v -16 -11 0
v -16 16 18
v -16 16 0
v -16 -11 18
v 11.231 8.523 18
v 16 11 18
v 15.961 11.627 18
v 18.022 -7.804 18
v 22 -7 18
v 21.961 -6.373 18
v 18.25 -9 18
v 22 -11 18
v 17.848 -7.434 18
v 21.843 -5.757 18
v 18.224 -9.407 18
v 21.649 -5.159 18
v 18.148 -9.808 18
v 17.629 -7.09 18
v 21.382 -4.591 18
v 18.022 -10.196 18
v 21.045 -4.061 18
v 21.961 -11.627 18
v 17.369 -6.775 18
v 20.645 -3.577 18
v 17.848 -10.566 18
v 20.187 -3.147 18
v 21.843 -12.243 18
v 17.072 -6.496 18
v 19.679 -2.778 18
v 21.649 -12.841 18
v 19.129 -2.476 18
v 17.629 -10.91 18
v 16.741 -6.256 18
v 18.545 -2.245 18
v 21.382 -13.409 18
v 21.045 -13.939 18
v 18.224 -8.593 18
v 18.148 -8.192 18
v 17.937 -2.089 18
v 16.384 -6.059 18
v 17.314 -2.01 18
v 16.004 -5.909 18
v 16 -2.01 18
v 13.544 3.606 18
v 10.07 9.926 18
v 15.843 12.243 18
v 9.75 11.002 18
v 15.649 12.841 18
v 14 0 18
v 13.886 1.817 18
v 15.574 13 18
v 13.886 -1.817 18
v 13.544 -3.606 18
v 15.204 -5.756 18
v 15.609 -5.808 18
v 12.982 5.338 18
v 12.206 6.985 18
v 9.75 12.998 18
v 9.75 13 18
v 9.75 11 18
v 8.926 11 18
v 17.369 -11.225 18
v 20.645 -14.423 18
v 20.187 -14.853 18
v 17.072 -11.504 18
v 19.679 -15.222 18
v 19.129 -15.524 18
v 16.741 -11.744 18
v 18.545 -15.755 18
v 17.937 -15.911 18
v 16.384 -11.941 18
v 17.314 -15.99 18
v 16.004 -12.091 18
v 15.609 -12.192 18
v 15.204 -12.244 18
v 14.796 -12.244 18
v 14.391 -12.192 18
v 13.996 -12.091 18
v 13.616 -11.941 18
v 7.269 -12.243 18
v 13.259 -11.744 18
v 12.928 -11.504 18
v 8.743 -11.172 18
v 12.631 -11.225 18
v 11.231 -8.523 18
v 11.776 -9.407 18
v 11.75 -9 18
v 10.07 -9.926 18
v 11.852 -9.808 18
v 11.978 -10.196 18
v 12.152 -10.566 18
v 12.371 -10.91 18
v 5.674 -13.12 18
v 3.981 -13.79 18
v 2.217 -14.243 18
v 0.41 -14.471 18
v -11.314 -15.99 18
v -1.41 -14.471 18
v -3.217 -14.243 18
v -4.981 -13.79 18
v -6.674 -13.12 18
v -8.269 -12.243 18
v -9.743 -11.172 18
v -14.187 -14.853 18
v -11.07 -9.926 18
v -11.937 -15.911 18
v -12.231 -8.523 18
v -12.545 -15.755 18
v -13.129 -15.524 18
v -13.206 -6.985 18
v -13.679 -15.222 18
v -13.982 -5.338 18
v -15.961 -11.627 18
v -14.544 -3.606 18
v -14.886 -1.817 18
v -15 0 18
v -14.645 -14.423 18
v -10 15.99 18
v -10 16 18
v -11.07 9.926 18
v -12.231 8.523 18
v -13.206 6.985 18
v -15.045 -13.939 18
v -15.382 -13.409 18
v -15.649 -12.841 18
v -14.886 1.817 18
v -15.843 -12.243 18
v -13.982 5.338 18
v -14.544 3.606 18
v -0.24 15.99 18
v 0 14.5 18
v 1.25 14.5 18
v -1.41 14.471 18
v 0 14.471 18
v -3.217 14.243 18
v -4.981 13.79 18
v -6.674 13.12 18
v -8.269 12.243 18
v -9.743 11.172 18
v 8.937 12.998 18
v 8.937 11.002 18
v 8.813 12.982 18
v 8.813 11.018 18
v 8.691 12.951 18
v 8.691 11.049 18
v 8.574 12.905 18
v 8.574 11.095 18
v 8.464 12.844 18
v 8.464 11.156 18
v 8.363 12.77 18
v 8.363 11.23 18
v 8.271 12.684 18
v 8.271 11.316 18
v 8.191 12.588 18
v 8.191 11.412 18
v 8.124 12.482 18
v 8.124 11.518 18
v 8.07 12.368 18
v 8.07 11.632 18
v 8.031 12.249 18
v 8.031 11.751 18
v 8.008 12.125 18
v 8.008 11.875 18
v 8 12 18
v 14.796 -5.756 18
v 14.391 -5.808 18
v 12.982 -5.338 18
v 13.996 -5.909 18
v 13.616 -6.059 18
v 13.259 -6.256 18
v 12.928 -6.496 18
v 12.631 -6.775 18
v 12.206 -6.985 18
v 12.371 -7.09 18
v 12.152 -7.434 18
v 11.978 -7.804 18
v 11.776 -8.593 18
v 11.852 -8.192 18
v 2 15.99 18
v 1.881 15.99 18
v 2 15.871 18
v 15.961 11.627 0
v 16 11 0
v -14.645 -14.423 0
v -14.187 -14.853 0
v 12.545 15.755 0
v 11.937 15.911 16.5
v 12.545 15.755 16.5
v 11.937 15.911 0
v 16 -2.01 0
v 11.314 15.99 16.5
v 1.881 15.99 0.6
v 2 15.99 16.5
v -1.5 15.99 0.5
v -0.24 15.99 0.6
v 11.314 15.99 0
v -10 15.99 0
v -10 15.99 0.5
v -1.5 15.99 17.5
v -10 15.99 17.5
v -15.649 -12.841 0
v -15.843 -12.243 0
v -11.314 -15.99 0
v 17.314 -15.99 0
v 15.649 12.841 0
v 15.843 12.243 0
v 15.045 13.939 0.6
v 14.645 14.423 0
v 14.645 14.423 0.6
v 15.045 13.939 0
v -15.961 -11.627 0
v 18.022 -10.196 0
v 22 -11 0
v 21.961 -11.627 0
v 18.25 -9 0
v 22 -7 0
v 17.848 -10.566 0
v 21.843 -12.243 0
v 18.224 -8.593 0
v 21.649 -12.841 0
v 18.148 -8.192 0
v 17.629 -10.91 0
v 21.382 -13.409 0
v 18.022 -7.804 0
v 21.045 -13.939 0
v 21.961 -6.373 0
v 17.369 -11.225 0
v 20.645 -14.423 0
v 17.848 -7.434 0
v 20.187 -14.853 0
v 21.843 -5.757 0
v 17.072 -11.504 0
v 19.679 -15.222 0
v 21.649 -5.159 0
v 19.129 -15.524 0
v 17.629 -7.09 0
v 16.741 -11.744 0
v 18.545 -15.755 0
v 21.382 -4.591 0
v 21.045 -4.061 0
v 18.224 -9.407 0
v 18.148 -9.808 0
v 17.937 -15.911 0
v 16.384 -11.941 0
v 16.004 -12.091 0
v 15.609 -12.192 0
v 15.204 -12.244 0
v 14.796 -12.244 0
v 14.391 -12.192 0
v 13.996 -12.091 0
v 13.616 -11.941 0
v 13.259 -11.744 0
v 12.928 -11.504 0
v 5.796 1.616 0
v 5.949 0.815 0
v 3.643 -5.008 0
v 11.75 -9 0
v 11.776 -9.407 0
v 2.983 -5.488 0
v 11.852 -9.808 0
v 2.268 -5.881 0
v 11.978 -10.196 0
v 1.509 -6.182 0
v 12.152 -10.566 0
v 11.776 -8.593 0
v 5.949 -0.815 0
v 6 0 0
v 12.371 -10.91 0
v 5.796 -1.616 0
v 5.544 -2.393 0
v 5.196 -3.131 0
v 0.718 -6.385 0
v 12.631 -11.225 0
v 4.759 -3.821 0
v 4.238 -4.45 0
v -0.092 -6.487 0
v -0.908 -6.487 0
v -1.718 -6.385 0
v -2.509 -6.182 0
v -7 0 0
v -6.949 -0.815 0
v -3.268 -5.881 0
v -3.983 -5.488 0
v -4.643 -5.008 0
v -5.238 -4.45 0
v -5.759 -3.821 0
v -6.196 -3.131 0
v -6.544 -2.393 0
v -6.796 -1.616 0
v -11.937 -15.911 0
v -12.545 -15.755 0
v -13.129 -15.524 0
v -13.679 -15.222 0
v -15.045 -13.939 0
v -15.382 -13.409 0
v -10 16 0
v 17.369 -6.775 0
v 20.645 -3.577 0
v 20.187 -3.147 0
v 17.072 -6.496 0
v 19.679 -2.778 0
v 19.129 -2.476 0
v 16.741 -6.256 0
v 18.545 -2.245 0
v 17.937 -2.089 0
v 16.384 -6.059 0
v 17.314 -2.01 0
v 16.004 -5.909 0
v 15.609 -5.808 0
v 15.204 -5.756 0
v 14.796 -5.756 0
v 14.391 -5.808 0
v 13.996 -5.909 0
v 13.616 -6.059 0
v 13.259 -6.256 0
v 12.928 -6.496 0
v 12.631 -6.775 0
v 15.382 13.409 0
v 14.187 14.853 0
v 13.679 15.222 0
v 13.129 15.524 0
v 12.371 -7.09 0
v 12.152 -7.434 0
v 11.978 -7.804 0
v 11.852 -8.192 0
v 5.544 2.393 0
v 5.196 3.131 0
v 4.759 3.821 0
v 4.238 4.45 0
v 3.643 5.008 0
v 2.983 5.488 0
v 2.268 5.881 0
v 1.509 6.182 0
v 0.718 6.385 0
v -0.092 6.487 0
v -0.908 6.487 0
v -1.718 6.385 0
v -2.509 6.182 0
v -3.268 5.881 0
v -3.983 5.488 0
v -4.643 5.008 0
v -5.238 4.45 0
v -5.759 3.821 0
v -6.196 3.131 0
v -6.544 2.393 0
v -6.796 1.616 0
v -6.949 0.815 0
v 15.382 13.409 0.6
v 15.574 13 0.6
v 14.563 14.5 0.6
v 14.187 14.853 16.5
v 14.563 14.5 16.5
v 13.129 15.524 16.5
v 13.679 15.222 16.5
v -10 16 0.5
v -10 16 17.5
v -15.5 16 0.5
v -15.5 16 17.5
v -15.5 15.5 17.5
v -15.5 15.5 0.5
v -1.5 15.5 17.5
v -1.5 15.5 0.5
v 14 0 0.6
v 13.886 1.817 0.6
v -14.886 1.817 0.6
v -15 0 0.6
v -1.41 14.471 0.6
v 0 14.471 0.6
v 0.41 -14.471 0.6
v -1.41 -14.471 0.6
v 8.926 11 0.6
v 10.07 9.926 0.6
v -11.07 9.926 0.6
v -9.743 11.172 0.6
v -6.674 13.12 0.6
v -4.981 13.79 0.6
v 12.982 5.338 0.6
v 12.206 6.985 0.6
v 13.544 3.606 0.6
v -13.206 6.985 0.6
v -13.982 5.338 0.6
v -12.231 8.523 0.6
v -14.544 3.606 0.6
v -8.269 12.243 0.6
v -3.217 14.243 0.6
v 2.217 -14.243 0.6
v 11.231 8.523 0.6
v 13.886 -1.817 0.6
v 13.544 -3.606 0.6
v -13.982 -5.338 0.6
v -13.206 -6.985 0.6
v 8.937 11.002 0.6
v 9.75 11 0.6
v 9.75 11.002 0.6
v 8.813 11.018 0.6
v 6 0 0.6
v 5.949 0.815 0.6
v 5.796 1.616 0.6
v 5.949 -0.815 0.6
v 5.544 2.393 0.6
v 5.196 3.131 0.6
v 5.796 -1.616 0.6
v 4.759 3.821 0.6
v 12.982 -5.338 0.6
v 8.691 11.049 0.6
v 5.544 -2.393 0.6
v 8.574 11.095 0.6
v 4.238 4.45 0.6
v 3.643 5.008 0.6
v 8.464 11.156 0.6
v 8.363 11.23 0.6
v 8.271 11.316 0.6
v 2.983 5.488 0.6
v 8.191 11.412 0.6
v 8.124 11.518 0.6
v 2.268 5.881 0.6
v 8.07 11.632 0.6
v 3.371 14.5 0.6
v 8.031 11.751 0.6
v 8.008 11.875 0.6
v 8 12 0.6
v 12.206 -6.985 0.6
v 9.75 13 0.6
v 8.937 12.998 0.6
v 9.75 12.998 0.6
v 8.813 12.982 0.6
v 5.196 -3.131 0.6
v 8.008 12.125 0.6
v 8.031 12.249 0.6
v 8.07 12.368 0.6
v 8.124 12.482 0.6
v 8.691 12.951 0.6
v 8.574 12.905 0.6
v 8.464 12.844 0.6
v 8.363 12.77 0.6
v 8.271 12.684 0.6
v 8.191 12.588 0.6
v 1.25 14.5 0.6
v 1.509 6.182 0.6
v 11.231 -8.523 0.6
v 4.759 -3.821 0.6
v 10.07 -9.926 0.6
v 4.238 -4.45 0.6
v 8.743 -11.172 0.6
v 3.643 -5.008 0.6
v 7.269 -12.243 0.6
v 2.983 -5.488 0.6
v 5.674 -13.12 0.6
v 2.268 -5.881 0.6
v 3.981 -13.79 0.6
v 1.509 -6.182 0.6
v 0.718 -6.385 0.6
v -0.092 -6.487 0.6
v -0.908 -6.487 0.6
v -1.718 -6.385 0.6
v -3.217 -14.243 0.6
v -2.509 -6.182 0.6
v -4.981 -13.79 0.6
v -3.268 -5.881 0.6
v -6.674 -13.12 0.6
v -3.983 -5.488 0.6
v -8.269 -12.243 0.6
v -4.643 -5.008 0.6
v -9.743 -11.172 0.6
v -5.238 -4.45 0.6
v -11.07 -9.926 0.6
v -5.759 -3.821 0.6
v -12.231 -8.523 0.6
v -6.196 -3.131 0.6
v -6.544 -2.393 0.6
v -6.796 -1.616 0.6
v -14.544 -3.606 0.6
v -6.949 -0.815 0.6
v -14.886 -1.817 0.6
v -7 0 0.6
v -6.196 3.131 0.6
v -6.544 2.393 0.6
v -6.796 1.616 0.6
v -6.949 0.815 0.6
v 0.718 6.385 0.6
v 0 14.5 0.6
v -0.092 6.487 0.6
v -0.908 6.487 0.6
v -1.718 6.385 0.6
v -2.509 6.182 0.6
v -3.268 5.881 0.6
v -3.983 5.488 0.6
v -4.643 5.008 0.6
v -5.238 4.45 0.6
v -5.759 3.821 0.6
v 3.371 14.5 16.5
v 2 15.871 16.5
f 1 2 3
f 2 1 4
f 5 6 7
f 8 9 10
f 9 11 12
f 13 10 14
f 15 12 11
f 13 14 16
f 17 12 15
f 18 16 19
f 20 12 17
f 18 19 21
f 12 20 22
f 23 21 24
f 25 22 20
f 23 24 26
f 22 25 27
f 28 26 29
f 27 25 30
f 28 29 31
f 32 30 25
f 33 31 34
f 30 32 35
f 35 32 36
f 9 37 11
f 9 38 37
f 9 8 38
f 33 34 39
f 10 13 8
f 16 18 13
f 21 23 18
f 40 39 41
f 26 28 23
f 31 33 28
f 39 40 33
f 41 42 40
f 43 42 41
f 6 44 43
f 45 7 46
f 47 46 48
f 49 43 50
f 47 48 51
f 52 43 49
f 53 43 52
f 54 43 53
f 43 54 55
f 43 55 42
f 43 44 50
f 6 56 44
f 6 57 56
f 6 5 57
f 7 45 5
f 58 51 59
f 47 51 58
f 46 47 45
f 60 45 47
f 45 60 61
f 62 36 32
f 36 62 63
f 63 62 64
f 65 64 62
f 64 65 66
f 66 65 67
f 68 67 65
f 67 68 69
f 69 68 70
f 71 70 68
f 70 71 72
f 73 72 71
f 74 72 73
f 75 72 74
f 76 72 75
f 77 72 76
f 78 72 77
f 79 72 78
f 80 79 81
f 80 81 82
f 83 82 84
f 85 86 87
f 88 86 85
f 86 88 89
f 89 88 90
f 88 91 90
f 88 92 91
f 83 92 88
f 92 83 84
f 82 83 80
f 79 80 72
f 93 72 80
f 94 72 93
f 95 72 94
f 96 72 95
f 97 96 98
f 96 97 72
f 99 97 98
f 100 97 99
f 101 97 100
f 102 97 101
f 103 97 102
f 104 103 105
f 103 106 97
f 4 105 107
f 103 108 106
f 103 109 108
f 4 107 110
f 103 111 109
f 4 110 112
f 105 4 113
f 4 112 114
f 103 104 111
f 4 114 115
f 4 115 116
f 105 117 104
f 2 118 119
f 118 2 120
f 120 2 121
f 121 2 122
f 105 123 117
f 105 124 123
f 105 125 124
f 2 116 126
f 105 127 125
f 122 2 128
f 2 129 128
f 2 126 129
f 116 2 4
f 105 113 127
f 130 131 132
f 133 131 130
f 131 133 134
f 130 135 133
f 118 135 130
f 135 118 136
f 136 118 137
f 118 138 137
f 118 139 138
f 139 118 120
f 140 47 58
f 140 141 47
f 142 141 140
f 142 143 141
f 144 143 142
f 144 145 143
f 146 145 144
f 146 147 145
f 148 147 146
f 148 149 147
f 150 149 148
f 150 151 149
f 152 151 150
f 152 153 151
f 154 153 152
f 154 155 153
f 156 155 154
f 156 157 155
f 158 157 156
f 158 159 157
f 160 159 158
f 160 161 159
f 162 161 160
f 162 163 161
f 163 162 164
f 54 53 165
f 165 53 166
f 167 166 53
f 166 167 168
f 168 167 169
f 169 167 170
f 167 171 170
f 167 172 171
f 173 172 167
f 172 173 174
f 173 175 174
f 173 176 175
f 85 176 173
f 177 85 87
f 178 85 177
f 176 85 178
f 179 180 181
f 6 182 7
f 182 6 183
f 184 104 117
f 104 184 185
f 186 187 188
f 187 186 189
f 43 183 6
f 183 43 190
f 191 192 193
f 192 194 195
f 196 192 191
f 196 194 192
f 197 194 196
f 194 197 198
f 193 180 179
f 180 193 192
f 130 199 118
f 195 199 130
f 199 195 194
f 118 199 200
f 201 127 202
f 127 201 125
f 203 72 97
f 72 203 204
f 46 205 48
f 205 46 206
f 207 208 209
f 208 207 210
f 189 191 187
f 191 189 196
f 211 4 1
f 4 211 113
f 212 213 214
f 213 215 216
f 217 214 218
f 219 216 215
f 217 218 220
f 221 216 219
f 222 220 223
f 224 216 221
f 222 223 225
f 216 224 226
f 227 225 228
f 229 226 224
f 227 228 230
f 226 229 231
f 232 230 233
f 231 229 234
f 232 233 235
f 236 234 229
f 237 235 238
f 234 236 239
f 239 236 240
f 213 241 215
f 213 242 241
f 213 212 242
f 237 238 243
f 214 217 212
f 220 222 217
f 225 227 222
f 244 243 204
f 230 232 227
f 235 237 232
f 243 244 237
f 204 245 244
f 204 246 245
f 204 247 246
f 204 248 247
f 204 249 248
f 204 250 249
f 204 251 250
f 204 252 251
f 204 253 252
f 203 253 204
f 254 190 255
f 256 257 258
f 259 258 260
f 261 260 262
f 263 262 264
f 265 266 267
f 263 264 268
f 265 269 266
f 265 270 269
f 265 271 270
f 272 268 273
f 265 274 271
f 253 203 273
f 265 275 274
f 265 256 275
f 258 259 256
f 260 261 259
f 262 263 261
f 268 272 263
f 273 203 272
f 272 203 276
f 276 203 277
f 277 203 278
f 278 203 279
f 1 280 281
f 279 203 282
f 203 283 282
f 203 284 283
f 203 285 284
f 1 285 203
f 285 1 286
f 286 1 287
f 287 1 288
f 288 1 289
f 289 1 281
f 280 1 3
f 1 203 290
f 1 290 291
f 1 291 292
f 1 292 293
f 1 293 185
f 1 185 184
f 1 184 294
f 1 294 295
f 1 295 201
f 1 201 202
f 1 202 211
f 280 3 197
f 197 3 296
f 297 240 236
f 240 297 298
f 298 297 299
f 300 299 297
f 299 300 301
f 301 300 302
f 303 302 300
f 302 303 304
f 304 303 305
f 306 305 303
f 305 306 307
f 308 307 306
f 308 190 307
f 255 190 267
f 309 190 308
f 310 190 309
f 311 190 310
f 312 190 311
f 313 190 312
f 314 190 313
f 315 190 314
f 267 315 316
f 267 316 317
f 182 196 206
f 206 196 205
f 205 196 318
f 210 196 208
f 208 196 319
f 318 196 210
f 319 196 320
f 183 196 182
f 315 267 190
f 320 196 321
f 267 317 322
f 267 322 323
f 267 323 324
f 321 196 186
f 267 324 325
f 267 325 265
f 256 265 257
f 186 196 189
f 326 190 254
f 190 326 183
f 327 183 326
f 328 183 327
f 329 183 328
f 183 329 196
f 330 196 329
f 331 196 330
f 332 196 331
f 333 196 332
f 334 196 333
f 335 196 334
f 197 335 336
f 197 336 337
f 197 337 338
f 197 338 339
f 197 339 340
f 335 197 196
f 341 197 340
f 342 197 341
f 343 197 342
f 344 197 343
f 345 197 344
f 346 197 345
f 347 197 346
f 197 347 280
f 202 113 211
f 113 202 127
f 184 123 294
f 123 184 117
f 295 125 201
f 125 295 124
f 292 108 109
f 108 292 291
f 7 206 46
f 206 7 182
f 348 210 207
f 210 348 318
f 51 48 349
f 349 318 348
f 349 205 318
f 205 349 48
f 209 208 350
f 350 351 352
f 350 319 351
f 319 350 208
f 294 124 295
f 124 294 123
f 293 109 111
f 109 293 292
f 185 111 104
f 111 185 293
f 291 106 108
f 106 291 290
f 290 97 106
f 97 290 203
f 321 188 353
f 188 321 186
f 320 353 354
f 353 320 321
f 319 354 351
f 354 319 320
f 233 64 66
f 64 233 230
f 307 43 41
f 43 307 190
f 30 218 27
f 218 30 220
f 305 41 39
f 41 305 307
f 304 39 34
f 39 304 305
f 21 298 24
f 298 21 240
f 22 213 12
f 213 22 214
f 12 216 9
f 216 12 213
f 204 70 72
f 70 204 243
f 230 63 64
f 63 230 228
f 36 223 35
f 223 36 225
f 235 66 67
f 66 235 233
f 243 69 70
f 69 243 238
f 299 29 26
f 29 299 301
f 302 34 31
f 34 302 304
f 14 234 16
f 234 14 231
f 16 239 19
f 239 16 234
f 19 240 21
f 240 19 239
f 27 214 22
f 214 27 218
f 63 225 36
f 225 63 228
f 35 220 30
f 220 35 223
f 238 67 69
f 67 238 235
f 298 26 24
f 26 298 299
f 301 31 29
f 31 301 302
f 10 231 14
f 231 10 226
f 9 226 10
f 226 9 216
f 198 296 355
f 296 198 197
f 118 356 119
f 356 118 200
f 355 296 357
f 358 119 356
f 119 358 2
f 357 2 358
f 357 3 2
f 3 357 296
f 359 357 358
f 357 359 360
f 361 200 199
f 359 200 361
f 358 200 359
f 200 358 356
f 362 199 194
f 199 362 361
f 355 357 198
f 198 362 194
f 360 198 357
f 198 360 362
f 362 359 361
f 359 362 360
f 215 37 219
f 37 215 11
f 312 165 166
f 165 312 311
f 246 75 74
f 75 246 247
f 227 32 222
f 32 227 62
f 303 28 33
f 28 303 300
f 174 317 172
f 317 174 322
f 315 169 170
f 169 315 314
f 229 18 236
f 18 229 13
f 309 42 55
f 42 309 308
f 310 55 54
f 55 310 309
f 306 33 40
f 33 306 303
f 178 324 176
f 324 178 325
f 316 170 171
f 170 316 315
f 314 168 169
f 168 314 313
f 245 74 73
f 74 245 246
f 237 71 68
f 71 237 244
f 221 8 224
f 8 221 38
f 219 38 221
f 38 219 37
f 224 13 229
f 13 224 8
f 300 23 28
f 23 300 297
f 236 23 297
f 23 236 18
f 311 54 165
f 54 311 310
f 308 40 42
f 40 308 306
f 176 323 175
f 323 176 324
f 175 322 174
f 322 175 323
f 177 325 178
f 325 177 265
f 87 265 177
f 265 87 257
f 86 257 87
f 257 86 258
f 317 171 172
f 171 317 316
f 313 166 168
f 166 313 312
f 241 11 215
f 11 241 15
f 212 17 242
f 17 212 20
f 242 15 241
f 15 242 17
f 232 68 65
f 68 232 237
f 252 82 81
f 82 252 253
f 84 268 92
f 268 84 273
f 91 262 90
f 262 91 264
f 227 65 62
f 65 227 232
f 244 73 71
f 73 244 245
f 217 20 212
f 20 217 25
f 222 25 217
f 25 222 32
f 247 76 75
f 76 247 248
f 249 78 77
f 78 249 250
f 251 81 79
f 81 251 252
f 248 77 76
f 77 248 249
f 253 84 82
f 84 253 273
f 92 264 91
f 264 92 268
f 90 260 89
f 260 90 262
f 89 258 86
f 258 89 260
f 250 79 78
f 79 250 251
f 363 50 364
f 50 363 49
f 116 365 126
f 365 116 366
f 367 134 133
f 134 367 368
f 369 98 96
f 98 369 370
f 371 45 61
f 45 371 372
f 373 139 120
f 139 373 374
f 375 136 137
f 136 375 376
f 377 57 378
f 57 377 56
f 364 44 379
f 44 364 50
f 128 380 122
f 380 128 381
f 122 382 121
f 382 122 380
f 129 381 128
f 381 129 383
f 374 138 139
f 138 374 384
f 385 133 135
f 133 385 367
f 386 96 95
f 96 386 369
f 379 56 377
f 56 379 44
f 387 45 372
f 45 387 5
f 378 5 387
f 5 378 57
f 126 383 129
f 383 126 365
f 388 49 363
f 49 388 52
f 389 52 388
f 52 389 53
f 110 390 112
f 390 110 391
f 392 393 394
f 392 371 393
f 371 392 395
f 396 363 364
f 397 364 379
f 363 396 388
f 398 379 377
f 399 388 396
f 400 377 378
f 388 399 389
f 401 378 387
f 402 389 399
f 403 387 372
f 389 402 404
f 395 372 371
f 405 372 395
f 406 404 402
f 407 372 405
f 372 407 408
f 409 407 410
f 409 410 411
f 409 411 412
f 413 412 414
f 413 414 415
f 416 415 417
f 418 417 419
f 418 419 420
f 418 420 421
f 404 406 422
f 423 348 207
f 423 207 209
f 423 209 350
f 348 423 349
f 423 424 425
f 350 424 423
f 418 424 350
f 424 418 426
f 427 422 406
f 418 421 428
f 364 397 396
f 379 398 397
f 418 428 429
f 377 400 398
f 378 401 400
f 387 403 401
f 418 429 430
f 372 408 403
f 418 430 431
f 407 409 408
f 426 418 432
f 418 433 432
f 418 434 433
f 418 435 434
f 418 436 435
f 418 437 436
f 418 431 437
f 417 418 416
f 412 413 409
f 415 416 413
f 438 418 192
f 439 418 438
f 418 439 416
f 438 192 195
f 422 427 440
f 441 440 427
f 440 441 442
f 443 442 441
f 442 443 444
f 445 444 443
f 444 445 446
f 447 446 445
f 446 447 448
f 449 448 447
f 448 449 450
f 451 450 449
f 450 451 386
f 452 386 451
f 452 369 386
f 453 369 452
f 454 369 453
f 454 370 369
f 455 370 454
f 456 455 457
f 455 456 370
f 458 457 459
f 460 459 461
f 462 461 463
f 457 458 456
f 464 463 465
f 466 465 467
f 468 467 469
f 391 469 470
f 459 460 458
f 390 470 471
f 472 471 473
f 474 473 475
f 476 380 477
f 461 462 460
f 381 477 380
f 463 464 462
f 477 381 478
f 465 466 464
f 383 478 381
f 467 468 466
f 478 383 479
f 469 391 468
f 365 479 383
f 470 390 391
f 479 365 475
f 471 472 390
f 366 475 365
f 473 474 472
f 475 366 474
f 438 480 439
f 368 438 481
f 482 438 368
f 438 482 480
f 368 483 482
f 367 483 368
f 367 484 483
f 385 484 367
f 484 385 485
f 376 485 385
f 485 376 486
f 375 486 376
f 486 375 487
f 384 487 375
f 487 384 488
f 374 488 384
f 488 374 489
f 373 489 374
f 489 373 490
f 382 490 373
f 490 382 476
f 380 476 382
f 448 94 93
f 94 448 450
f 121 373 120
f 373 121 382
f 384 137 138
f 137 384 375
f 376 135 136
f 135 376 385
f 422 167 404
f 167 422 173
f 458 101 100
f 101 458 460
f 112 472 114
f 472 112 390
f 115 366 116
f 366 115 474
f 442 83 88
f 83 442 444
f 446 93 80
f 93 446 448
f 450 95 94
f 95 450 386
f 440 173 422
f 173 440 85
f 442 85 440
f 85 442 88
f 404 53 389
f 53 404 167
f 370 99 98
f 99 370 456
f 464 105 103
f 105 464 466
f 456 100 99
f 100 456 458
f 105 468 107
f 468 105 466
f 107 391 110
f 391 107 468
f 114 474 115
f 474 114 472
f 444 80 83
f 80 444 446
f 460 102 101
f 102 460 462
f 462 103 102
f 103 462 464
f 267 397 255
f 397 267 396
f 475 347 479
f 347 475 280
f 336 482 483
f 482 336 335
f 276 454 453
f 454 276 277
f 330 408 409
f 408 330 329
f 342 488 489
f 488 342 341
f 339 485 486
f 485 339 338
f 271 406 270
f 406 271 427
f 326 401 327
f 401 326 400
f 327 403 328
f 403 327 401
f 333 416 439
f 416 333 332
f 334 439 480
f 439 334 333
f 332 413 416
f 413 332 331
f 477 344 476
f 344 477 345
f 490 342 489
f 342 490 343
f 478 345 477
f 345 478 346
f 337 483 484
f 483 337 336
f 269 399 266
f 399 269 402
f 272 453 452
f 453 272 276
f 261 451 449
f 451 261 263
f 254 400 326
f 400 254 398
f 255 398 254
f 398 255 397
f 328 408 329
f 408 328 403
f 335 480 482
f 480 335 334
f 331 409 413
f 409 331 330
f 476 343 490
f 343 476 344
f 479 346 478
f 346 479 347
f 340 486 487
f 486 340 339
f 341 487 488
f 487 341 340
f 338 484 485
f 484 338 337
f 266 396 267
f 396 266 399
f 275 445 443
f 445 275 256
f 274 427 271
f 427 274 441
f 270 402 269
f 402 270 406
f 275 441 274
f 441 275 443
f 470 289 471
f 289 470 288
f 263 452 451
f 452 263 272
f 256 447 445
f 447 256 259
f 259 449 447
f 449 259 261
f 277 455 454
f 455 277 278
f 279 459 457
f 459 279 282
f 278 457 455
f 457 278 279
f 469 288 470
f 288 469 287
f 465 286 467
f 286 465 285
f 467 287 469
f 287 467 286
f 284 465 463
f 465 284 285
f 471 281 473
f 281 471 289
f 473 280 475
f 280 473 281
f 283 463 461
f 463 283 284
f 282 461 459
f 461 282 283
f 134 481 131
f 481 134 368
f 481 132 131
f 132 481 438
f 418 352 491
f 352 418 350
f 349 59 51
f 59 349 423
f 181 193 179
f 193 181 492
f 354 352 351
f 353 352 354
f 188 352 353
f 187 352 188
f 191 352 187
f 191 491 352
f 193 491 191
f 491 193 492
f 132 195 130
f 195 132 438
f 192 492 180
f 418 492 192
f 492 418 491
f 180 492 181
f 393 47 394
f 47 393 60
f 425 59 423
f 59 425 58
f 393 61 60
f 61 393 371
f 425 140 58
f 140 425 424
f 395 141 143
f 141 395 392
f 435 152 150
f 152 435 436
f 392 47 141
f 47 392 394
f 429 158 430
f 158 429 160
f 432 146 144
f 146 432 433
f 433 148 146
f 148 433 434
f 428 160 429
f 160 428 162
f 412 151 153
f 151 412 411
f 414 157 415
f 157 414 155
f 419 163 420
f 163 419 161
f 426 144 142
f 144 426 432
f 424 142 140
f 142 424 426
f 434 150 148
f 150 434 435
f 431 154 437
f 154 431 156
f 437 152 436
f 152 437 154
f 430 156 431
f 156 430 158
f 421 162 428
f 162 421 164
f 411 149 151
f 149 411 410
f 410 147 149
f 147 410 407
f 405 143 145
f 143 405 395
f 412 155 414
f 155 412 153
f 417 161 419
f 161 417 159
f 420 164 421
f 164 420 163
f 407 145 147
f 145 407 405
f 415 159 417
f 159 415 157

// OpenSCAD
$fn = 50;


union() {
	difference() {
		union() {
			translate(v = [0, 0, 0]) {
				rotate(a = [0, 0, 0]) {
					hull() {
						translate(v = [-11.0000000000, 11.0000000000, 0]) {
							rotate(a = [0, 0, 0]) {
								translate(v = [0, 0, 0]) {
									rotate(a = [0, 0, 0]) {
										cylinder(h = 18, r = 5);
									}
								}
							}
						}
						translate(v = [11.0000000000, 11.0000000000, 0]) {
							rotate(a = [0, 0, 0]) {
								translate(v = [0, 0, 0]) {
									rotate(a = [0, 0, 0]) {
										cylinder(h = 18, r = 5);
									}
								}
							}
						}
						translate(v = [-11.0000000000, -11.0000000000, 0]) {
							rotate(a = [0, 0, 0]) {
								translate(v = [0, 0, 0]) {
									rotate(a = [0, 0, 0]) {
										cylinder(h = 18, r = 5);
									}
								}
							}
						}
						translate(v = [11.0000000000, -11.0000000000, 0]) {
							rotate(a = [0, 0, 0]) {
								translate(v = [0, 0, 0]) {
									rotate(a = [0, 0, 0]) {
										cylinder(h = 18, r = 5);
									}
								}
							}
						}
					}
				}
			}
			translate(v = [7.5000000000, -9.0000000000, 0]) {
				rotate(a = [0, 0, 0]) {
					hull() {
						translate(v = [-9.5000000000, 2.0000000000, 0]) {
							rotate(a = [0, 0, 0]) {
								translate(v = [0, 0, 0]) {
									rotate(a = [0, 0, 0]) {
										cylinder(h = 18, r = 5);
									}
								}
							}
						}
						translate(v = [9.5000000000, 2.0000000000, 0]) {
							rotate(a = [0, 0, 0]) {
								translate(v = [0, 0, 0]) {
									rotate(a = [0, 0, 0]) {
										cylinder(h = 18, r = 5);
									}
								}
							}
						}
						translate(v = [-9.5000000000, -2.0000000000, 0]) {
							rotate(a = [0, 0, 0]) {
								translate(v = [0, 0, 0]) {
									rotate(a = [0, 0, 0]) {
										cylinder(h = 18, r = 5);
									}
								}
							}
						}
						translate(v = [9.5000000000, -2.0000000000, 0]) {
							rotate(a = [0, 0, 0]) {
								translate(v = [0, 0, 0]) {
									rotate(a = [0, 0, 0]) {
										cylinder(h = 18, r = 5);
									}
								}
							}
						}
					}
				}
			}
			translate(v = [-16.0000000000, 10.0000000000, 0]) {
				rotate(a = [0, 0, 0]) {
					cube(size = [6, 6, 18]);
				}
			}
		}
		union() {
			translate(v = [-15.5000000000, 15.5000000000, 0.5000000000]) {
				rotate(a = [0, 0, 0]) {
					cube(size = [14, 0.5000000000, 17.0000000000]);
				}
			}
			translate(v = [15.0000000000, -9.0000000000, -125.0000000000]) {
				rotate(a = [0, 0, 0]) {
					cylinder(h = 250, r = 3.2500000000);
				}
			}
			translate(v = [-0.5000000000, 0.0000000000, 0.6000000000]) {
				rotate(a = [0, 0, 0]) {
					cylinder(h = 20.4000000000, r = 14.5000000000);
				}
			}
			translate(v = [-0.5000000000, 0.0000000000, -9.0000000000]) {
				rotate(a = [0, 0, 0]) {
					cylinder(h = 18, r = 6.5000000000);
				}
			}
			translate(v = [0.0000000000, 13.0000000000, 0.6000000000]) {
				rotate(a = [0, 0, 0]) {
					cube(size = [16.0000000000, 1.5000000000, 20.4000000000]);
				}
			}
			translate(v = [2.0000000000, 13.0000000000, 16.5000000000]) {
				rotate(a = [0, 0, 0]) {
					cube(size = [14.0000000000, 4.5000000000, 1.5000000000]);
				}
			}
			translate(v = [-3.0000000000, 18.7500000000, 0.6000000000]) {
				rotate(a = [0, 0, -45]) {
					cube(size = [10, 1.5000000000, 20.4000000000]);
				}
			}
			translate(v = [2.2500000000, 11.0000000000, 0.6000000000]) {
				rotate(a = [0, 0, 0]) {
					cube(size = [7.5000000000, 2, 17.4000000000]);
				}
			}
		}
	}
	union() {
		translate(v = [11.5000000000, 12, 0]) {
			rotate(a = [0, 0, 0]) {
				hull() {
					translate(v = [2.5000000000, 0, 0]) {
						rotate(a = [0, 0, 0]) {
							translate(v = [0, 0, 0]) {
								rotate(a = [0, 0, 0]) {
									cylinder(h = 18, r = 1.0000000000);
								}
							}
						}
					}
					translate(v = [-2.5000000000, 0, 0]) {
						rotate(a = [0, 0, 0]) {
							translate(v = [0, 0, 0]) {
								rotate(a = [0, 0, 0]) {
									cylinder(h = 18, r = 1.0000000000);
								}
							}
						}
					}
				}
			}
		}
	}
}
